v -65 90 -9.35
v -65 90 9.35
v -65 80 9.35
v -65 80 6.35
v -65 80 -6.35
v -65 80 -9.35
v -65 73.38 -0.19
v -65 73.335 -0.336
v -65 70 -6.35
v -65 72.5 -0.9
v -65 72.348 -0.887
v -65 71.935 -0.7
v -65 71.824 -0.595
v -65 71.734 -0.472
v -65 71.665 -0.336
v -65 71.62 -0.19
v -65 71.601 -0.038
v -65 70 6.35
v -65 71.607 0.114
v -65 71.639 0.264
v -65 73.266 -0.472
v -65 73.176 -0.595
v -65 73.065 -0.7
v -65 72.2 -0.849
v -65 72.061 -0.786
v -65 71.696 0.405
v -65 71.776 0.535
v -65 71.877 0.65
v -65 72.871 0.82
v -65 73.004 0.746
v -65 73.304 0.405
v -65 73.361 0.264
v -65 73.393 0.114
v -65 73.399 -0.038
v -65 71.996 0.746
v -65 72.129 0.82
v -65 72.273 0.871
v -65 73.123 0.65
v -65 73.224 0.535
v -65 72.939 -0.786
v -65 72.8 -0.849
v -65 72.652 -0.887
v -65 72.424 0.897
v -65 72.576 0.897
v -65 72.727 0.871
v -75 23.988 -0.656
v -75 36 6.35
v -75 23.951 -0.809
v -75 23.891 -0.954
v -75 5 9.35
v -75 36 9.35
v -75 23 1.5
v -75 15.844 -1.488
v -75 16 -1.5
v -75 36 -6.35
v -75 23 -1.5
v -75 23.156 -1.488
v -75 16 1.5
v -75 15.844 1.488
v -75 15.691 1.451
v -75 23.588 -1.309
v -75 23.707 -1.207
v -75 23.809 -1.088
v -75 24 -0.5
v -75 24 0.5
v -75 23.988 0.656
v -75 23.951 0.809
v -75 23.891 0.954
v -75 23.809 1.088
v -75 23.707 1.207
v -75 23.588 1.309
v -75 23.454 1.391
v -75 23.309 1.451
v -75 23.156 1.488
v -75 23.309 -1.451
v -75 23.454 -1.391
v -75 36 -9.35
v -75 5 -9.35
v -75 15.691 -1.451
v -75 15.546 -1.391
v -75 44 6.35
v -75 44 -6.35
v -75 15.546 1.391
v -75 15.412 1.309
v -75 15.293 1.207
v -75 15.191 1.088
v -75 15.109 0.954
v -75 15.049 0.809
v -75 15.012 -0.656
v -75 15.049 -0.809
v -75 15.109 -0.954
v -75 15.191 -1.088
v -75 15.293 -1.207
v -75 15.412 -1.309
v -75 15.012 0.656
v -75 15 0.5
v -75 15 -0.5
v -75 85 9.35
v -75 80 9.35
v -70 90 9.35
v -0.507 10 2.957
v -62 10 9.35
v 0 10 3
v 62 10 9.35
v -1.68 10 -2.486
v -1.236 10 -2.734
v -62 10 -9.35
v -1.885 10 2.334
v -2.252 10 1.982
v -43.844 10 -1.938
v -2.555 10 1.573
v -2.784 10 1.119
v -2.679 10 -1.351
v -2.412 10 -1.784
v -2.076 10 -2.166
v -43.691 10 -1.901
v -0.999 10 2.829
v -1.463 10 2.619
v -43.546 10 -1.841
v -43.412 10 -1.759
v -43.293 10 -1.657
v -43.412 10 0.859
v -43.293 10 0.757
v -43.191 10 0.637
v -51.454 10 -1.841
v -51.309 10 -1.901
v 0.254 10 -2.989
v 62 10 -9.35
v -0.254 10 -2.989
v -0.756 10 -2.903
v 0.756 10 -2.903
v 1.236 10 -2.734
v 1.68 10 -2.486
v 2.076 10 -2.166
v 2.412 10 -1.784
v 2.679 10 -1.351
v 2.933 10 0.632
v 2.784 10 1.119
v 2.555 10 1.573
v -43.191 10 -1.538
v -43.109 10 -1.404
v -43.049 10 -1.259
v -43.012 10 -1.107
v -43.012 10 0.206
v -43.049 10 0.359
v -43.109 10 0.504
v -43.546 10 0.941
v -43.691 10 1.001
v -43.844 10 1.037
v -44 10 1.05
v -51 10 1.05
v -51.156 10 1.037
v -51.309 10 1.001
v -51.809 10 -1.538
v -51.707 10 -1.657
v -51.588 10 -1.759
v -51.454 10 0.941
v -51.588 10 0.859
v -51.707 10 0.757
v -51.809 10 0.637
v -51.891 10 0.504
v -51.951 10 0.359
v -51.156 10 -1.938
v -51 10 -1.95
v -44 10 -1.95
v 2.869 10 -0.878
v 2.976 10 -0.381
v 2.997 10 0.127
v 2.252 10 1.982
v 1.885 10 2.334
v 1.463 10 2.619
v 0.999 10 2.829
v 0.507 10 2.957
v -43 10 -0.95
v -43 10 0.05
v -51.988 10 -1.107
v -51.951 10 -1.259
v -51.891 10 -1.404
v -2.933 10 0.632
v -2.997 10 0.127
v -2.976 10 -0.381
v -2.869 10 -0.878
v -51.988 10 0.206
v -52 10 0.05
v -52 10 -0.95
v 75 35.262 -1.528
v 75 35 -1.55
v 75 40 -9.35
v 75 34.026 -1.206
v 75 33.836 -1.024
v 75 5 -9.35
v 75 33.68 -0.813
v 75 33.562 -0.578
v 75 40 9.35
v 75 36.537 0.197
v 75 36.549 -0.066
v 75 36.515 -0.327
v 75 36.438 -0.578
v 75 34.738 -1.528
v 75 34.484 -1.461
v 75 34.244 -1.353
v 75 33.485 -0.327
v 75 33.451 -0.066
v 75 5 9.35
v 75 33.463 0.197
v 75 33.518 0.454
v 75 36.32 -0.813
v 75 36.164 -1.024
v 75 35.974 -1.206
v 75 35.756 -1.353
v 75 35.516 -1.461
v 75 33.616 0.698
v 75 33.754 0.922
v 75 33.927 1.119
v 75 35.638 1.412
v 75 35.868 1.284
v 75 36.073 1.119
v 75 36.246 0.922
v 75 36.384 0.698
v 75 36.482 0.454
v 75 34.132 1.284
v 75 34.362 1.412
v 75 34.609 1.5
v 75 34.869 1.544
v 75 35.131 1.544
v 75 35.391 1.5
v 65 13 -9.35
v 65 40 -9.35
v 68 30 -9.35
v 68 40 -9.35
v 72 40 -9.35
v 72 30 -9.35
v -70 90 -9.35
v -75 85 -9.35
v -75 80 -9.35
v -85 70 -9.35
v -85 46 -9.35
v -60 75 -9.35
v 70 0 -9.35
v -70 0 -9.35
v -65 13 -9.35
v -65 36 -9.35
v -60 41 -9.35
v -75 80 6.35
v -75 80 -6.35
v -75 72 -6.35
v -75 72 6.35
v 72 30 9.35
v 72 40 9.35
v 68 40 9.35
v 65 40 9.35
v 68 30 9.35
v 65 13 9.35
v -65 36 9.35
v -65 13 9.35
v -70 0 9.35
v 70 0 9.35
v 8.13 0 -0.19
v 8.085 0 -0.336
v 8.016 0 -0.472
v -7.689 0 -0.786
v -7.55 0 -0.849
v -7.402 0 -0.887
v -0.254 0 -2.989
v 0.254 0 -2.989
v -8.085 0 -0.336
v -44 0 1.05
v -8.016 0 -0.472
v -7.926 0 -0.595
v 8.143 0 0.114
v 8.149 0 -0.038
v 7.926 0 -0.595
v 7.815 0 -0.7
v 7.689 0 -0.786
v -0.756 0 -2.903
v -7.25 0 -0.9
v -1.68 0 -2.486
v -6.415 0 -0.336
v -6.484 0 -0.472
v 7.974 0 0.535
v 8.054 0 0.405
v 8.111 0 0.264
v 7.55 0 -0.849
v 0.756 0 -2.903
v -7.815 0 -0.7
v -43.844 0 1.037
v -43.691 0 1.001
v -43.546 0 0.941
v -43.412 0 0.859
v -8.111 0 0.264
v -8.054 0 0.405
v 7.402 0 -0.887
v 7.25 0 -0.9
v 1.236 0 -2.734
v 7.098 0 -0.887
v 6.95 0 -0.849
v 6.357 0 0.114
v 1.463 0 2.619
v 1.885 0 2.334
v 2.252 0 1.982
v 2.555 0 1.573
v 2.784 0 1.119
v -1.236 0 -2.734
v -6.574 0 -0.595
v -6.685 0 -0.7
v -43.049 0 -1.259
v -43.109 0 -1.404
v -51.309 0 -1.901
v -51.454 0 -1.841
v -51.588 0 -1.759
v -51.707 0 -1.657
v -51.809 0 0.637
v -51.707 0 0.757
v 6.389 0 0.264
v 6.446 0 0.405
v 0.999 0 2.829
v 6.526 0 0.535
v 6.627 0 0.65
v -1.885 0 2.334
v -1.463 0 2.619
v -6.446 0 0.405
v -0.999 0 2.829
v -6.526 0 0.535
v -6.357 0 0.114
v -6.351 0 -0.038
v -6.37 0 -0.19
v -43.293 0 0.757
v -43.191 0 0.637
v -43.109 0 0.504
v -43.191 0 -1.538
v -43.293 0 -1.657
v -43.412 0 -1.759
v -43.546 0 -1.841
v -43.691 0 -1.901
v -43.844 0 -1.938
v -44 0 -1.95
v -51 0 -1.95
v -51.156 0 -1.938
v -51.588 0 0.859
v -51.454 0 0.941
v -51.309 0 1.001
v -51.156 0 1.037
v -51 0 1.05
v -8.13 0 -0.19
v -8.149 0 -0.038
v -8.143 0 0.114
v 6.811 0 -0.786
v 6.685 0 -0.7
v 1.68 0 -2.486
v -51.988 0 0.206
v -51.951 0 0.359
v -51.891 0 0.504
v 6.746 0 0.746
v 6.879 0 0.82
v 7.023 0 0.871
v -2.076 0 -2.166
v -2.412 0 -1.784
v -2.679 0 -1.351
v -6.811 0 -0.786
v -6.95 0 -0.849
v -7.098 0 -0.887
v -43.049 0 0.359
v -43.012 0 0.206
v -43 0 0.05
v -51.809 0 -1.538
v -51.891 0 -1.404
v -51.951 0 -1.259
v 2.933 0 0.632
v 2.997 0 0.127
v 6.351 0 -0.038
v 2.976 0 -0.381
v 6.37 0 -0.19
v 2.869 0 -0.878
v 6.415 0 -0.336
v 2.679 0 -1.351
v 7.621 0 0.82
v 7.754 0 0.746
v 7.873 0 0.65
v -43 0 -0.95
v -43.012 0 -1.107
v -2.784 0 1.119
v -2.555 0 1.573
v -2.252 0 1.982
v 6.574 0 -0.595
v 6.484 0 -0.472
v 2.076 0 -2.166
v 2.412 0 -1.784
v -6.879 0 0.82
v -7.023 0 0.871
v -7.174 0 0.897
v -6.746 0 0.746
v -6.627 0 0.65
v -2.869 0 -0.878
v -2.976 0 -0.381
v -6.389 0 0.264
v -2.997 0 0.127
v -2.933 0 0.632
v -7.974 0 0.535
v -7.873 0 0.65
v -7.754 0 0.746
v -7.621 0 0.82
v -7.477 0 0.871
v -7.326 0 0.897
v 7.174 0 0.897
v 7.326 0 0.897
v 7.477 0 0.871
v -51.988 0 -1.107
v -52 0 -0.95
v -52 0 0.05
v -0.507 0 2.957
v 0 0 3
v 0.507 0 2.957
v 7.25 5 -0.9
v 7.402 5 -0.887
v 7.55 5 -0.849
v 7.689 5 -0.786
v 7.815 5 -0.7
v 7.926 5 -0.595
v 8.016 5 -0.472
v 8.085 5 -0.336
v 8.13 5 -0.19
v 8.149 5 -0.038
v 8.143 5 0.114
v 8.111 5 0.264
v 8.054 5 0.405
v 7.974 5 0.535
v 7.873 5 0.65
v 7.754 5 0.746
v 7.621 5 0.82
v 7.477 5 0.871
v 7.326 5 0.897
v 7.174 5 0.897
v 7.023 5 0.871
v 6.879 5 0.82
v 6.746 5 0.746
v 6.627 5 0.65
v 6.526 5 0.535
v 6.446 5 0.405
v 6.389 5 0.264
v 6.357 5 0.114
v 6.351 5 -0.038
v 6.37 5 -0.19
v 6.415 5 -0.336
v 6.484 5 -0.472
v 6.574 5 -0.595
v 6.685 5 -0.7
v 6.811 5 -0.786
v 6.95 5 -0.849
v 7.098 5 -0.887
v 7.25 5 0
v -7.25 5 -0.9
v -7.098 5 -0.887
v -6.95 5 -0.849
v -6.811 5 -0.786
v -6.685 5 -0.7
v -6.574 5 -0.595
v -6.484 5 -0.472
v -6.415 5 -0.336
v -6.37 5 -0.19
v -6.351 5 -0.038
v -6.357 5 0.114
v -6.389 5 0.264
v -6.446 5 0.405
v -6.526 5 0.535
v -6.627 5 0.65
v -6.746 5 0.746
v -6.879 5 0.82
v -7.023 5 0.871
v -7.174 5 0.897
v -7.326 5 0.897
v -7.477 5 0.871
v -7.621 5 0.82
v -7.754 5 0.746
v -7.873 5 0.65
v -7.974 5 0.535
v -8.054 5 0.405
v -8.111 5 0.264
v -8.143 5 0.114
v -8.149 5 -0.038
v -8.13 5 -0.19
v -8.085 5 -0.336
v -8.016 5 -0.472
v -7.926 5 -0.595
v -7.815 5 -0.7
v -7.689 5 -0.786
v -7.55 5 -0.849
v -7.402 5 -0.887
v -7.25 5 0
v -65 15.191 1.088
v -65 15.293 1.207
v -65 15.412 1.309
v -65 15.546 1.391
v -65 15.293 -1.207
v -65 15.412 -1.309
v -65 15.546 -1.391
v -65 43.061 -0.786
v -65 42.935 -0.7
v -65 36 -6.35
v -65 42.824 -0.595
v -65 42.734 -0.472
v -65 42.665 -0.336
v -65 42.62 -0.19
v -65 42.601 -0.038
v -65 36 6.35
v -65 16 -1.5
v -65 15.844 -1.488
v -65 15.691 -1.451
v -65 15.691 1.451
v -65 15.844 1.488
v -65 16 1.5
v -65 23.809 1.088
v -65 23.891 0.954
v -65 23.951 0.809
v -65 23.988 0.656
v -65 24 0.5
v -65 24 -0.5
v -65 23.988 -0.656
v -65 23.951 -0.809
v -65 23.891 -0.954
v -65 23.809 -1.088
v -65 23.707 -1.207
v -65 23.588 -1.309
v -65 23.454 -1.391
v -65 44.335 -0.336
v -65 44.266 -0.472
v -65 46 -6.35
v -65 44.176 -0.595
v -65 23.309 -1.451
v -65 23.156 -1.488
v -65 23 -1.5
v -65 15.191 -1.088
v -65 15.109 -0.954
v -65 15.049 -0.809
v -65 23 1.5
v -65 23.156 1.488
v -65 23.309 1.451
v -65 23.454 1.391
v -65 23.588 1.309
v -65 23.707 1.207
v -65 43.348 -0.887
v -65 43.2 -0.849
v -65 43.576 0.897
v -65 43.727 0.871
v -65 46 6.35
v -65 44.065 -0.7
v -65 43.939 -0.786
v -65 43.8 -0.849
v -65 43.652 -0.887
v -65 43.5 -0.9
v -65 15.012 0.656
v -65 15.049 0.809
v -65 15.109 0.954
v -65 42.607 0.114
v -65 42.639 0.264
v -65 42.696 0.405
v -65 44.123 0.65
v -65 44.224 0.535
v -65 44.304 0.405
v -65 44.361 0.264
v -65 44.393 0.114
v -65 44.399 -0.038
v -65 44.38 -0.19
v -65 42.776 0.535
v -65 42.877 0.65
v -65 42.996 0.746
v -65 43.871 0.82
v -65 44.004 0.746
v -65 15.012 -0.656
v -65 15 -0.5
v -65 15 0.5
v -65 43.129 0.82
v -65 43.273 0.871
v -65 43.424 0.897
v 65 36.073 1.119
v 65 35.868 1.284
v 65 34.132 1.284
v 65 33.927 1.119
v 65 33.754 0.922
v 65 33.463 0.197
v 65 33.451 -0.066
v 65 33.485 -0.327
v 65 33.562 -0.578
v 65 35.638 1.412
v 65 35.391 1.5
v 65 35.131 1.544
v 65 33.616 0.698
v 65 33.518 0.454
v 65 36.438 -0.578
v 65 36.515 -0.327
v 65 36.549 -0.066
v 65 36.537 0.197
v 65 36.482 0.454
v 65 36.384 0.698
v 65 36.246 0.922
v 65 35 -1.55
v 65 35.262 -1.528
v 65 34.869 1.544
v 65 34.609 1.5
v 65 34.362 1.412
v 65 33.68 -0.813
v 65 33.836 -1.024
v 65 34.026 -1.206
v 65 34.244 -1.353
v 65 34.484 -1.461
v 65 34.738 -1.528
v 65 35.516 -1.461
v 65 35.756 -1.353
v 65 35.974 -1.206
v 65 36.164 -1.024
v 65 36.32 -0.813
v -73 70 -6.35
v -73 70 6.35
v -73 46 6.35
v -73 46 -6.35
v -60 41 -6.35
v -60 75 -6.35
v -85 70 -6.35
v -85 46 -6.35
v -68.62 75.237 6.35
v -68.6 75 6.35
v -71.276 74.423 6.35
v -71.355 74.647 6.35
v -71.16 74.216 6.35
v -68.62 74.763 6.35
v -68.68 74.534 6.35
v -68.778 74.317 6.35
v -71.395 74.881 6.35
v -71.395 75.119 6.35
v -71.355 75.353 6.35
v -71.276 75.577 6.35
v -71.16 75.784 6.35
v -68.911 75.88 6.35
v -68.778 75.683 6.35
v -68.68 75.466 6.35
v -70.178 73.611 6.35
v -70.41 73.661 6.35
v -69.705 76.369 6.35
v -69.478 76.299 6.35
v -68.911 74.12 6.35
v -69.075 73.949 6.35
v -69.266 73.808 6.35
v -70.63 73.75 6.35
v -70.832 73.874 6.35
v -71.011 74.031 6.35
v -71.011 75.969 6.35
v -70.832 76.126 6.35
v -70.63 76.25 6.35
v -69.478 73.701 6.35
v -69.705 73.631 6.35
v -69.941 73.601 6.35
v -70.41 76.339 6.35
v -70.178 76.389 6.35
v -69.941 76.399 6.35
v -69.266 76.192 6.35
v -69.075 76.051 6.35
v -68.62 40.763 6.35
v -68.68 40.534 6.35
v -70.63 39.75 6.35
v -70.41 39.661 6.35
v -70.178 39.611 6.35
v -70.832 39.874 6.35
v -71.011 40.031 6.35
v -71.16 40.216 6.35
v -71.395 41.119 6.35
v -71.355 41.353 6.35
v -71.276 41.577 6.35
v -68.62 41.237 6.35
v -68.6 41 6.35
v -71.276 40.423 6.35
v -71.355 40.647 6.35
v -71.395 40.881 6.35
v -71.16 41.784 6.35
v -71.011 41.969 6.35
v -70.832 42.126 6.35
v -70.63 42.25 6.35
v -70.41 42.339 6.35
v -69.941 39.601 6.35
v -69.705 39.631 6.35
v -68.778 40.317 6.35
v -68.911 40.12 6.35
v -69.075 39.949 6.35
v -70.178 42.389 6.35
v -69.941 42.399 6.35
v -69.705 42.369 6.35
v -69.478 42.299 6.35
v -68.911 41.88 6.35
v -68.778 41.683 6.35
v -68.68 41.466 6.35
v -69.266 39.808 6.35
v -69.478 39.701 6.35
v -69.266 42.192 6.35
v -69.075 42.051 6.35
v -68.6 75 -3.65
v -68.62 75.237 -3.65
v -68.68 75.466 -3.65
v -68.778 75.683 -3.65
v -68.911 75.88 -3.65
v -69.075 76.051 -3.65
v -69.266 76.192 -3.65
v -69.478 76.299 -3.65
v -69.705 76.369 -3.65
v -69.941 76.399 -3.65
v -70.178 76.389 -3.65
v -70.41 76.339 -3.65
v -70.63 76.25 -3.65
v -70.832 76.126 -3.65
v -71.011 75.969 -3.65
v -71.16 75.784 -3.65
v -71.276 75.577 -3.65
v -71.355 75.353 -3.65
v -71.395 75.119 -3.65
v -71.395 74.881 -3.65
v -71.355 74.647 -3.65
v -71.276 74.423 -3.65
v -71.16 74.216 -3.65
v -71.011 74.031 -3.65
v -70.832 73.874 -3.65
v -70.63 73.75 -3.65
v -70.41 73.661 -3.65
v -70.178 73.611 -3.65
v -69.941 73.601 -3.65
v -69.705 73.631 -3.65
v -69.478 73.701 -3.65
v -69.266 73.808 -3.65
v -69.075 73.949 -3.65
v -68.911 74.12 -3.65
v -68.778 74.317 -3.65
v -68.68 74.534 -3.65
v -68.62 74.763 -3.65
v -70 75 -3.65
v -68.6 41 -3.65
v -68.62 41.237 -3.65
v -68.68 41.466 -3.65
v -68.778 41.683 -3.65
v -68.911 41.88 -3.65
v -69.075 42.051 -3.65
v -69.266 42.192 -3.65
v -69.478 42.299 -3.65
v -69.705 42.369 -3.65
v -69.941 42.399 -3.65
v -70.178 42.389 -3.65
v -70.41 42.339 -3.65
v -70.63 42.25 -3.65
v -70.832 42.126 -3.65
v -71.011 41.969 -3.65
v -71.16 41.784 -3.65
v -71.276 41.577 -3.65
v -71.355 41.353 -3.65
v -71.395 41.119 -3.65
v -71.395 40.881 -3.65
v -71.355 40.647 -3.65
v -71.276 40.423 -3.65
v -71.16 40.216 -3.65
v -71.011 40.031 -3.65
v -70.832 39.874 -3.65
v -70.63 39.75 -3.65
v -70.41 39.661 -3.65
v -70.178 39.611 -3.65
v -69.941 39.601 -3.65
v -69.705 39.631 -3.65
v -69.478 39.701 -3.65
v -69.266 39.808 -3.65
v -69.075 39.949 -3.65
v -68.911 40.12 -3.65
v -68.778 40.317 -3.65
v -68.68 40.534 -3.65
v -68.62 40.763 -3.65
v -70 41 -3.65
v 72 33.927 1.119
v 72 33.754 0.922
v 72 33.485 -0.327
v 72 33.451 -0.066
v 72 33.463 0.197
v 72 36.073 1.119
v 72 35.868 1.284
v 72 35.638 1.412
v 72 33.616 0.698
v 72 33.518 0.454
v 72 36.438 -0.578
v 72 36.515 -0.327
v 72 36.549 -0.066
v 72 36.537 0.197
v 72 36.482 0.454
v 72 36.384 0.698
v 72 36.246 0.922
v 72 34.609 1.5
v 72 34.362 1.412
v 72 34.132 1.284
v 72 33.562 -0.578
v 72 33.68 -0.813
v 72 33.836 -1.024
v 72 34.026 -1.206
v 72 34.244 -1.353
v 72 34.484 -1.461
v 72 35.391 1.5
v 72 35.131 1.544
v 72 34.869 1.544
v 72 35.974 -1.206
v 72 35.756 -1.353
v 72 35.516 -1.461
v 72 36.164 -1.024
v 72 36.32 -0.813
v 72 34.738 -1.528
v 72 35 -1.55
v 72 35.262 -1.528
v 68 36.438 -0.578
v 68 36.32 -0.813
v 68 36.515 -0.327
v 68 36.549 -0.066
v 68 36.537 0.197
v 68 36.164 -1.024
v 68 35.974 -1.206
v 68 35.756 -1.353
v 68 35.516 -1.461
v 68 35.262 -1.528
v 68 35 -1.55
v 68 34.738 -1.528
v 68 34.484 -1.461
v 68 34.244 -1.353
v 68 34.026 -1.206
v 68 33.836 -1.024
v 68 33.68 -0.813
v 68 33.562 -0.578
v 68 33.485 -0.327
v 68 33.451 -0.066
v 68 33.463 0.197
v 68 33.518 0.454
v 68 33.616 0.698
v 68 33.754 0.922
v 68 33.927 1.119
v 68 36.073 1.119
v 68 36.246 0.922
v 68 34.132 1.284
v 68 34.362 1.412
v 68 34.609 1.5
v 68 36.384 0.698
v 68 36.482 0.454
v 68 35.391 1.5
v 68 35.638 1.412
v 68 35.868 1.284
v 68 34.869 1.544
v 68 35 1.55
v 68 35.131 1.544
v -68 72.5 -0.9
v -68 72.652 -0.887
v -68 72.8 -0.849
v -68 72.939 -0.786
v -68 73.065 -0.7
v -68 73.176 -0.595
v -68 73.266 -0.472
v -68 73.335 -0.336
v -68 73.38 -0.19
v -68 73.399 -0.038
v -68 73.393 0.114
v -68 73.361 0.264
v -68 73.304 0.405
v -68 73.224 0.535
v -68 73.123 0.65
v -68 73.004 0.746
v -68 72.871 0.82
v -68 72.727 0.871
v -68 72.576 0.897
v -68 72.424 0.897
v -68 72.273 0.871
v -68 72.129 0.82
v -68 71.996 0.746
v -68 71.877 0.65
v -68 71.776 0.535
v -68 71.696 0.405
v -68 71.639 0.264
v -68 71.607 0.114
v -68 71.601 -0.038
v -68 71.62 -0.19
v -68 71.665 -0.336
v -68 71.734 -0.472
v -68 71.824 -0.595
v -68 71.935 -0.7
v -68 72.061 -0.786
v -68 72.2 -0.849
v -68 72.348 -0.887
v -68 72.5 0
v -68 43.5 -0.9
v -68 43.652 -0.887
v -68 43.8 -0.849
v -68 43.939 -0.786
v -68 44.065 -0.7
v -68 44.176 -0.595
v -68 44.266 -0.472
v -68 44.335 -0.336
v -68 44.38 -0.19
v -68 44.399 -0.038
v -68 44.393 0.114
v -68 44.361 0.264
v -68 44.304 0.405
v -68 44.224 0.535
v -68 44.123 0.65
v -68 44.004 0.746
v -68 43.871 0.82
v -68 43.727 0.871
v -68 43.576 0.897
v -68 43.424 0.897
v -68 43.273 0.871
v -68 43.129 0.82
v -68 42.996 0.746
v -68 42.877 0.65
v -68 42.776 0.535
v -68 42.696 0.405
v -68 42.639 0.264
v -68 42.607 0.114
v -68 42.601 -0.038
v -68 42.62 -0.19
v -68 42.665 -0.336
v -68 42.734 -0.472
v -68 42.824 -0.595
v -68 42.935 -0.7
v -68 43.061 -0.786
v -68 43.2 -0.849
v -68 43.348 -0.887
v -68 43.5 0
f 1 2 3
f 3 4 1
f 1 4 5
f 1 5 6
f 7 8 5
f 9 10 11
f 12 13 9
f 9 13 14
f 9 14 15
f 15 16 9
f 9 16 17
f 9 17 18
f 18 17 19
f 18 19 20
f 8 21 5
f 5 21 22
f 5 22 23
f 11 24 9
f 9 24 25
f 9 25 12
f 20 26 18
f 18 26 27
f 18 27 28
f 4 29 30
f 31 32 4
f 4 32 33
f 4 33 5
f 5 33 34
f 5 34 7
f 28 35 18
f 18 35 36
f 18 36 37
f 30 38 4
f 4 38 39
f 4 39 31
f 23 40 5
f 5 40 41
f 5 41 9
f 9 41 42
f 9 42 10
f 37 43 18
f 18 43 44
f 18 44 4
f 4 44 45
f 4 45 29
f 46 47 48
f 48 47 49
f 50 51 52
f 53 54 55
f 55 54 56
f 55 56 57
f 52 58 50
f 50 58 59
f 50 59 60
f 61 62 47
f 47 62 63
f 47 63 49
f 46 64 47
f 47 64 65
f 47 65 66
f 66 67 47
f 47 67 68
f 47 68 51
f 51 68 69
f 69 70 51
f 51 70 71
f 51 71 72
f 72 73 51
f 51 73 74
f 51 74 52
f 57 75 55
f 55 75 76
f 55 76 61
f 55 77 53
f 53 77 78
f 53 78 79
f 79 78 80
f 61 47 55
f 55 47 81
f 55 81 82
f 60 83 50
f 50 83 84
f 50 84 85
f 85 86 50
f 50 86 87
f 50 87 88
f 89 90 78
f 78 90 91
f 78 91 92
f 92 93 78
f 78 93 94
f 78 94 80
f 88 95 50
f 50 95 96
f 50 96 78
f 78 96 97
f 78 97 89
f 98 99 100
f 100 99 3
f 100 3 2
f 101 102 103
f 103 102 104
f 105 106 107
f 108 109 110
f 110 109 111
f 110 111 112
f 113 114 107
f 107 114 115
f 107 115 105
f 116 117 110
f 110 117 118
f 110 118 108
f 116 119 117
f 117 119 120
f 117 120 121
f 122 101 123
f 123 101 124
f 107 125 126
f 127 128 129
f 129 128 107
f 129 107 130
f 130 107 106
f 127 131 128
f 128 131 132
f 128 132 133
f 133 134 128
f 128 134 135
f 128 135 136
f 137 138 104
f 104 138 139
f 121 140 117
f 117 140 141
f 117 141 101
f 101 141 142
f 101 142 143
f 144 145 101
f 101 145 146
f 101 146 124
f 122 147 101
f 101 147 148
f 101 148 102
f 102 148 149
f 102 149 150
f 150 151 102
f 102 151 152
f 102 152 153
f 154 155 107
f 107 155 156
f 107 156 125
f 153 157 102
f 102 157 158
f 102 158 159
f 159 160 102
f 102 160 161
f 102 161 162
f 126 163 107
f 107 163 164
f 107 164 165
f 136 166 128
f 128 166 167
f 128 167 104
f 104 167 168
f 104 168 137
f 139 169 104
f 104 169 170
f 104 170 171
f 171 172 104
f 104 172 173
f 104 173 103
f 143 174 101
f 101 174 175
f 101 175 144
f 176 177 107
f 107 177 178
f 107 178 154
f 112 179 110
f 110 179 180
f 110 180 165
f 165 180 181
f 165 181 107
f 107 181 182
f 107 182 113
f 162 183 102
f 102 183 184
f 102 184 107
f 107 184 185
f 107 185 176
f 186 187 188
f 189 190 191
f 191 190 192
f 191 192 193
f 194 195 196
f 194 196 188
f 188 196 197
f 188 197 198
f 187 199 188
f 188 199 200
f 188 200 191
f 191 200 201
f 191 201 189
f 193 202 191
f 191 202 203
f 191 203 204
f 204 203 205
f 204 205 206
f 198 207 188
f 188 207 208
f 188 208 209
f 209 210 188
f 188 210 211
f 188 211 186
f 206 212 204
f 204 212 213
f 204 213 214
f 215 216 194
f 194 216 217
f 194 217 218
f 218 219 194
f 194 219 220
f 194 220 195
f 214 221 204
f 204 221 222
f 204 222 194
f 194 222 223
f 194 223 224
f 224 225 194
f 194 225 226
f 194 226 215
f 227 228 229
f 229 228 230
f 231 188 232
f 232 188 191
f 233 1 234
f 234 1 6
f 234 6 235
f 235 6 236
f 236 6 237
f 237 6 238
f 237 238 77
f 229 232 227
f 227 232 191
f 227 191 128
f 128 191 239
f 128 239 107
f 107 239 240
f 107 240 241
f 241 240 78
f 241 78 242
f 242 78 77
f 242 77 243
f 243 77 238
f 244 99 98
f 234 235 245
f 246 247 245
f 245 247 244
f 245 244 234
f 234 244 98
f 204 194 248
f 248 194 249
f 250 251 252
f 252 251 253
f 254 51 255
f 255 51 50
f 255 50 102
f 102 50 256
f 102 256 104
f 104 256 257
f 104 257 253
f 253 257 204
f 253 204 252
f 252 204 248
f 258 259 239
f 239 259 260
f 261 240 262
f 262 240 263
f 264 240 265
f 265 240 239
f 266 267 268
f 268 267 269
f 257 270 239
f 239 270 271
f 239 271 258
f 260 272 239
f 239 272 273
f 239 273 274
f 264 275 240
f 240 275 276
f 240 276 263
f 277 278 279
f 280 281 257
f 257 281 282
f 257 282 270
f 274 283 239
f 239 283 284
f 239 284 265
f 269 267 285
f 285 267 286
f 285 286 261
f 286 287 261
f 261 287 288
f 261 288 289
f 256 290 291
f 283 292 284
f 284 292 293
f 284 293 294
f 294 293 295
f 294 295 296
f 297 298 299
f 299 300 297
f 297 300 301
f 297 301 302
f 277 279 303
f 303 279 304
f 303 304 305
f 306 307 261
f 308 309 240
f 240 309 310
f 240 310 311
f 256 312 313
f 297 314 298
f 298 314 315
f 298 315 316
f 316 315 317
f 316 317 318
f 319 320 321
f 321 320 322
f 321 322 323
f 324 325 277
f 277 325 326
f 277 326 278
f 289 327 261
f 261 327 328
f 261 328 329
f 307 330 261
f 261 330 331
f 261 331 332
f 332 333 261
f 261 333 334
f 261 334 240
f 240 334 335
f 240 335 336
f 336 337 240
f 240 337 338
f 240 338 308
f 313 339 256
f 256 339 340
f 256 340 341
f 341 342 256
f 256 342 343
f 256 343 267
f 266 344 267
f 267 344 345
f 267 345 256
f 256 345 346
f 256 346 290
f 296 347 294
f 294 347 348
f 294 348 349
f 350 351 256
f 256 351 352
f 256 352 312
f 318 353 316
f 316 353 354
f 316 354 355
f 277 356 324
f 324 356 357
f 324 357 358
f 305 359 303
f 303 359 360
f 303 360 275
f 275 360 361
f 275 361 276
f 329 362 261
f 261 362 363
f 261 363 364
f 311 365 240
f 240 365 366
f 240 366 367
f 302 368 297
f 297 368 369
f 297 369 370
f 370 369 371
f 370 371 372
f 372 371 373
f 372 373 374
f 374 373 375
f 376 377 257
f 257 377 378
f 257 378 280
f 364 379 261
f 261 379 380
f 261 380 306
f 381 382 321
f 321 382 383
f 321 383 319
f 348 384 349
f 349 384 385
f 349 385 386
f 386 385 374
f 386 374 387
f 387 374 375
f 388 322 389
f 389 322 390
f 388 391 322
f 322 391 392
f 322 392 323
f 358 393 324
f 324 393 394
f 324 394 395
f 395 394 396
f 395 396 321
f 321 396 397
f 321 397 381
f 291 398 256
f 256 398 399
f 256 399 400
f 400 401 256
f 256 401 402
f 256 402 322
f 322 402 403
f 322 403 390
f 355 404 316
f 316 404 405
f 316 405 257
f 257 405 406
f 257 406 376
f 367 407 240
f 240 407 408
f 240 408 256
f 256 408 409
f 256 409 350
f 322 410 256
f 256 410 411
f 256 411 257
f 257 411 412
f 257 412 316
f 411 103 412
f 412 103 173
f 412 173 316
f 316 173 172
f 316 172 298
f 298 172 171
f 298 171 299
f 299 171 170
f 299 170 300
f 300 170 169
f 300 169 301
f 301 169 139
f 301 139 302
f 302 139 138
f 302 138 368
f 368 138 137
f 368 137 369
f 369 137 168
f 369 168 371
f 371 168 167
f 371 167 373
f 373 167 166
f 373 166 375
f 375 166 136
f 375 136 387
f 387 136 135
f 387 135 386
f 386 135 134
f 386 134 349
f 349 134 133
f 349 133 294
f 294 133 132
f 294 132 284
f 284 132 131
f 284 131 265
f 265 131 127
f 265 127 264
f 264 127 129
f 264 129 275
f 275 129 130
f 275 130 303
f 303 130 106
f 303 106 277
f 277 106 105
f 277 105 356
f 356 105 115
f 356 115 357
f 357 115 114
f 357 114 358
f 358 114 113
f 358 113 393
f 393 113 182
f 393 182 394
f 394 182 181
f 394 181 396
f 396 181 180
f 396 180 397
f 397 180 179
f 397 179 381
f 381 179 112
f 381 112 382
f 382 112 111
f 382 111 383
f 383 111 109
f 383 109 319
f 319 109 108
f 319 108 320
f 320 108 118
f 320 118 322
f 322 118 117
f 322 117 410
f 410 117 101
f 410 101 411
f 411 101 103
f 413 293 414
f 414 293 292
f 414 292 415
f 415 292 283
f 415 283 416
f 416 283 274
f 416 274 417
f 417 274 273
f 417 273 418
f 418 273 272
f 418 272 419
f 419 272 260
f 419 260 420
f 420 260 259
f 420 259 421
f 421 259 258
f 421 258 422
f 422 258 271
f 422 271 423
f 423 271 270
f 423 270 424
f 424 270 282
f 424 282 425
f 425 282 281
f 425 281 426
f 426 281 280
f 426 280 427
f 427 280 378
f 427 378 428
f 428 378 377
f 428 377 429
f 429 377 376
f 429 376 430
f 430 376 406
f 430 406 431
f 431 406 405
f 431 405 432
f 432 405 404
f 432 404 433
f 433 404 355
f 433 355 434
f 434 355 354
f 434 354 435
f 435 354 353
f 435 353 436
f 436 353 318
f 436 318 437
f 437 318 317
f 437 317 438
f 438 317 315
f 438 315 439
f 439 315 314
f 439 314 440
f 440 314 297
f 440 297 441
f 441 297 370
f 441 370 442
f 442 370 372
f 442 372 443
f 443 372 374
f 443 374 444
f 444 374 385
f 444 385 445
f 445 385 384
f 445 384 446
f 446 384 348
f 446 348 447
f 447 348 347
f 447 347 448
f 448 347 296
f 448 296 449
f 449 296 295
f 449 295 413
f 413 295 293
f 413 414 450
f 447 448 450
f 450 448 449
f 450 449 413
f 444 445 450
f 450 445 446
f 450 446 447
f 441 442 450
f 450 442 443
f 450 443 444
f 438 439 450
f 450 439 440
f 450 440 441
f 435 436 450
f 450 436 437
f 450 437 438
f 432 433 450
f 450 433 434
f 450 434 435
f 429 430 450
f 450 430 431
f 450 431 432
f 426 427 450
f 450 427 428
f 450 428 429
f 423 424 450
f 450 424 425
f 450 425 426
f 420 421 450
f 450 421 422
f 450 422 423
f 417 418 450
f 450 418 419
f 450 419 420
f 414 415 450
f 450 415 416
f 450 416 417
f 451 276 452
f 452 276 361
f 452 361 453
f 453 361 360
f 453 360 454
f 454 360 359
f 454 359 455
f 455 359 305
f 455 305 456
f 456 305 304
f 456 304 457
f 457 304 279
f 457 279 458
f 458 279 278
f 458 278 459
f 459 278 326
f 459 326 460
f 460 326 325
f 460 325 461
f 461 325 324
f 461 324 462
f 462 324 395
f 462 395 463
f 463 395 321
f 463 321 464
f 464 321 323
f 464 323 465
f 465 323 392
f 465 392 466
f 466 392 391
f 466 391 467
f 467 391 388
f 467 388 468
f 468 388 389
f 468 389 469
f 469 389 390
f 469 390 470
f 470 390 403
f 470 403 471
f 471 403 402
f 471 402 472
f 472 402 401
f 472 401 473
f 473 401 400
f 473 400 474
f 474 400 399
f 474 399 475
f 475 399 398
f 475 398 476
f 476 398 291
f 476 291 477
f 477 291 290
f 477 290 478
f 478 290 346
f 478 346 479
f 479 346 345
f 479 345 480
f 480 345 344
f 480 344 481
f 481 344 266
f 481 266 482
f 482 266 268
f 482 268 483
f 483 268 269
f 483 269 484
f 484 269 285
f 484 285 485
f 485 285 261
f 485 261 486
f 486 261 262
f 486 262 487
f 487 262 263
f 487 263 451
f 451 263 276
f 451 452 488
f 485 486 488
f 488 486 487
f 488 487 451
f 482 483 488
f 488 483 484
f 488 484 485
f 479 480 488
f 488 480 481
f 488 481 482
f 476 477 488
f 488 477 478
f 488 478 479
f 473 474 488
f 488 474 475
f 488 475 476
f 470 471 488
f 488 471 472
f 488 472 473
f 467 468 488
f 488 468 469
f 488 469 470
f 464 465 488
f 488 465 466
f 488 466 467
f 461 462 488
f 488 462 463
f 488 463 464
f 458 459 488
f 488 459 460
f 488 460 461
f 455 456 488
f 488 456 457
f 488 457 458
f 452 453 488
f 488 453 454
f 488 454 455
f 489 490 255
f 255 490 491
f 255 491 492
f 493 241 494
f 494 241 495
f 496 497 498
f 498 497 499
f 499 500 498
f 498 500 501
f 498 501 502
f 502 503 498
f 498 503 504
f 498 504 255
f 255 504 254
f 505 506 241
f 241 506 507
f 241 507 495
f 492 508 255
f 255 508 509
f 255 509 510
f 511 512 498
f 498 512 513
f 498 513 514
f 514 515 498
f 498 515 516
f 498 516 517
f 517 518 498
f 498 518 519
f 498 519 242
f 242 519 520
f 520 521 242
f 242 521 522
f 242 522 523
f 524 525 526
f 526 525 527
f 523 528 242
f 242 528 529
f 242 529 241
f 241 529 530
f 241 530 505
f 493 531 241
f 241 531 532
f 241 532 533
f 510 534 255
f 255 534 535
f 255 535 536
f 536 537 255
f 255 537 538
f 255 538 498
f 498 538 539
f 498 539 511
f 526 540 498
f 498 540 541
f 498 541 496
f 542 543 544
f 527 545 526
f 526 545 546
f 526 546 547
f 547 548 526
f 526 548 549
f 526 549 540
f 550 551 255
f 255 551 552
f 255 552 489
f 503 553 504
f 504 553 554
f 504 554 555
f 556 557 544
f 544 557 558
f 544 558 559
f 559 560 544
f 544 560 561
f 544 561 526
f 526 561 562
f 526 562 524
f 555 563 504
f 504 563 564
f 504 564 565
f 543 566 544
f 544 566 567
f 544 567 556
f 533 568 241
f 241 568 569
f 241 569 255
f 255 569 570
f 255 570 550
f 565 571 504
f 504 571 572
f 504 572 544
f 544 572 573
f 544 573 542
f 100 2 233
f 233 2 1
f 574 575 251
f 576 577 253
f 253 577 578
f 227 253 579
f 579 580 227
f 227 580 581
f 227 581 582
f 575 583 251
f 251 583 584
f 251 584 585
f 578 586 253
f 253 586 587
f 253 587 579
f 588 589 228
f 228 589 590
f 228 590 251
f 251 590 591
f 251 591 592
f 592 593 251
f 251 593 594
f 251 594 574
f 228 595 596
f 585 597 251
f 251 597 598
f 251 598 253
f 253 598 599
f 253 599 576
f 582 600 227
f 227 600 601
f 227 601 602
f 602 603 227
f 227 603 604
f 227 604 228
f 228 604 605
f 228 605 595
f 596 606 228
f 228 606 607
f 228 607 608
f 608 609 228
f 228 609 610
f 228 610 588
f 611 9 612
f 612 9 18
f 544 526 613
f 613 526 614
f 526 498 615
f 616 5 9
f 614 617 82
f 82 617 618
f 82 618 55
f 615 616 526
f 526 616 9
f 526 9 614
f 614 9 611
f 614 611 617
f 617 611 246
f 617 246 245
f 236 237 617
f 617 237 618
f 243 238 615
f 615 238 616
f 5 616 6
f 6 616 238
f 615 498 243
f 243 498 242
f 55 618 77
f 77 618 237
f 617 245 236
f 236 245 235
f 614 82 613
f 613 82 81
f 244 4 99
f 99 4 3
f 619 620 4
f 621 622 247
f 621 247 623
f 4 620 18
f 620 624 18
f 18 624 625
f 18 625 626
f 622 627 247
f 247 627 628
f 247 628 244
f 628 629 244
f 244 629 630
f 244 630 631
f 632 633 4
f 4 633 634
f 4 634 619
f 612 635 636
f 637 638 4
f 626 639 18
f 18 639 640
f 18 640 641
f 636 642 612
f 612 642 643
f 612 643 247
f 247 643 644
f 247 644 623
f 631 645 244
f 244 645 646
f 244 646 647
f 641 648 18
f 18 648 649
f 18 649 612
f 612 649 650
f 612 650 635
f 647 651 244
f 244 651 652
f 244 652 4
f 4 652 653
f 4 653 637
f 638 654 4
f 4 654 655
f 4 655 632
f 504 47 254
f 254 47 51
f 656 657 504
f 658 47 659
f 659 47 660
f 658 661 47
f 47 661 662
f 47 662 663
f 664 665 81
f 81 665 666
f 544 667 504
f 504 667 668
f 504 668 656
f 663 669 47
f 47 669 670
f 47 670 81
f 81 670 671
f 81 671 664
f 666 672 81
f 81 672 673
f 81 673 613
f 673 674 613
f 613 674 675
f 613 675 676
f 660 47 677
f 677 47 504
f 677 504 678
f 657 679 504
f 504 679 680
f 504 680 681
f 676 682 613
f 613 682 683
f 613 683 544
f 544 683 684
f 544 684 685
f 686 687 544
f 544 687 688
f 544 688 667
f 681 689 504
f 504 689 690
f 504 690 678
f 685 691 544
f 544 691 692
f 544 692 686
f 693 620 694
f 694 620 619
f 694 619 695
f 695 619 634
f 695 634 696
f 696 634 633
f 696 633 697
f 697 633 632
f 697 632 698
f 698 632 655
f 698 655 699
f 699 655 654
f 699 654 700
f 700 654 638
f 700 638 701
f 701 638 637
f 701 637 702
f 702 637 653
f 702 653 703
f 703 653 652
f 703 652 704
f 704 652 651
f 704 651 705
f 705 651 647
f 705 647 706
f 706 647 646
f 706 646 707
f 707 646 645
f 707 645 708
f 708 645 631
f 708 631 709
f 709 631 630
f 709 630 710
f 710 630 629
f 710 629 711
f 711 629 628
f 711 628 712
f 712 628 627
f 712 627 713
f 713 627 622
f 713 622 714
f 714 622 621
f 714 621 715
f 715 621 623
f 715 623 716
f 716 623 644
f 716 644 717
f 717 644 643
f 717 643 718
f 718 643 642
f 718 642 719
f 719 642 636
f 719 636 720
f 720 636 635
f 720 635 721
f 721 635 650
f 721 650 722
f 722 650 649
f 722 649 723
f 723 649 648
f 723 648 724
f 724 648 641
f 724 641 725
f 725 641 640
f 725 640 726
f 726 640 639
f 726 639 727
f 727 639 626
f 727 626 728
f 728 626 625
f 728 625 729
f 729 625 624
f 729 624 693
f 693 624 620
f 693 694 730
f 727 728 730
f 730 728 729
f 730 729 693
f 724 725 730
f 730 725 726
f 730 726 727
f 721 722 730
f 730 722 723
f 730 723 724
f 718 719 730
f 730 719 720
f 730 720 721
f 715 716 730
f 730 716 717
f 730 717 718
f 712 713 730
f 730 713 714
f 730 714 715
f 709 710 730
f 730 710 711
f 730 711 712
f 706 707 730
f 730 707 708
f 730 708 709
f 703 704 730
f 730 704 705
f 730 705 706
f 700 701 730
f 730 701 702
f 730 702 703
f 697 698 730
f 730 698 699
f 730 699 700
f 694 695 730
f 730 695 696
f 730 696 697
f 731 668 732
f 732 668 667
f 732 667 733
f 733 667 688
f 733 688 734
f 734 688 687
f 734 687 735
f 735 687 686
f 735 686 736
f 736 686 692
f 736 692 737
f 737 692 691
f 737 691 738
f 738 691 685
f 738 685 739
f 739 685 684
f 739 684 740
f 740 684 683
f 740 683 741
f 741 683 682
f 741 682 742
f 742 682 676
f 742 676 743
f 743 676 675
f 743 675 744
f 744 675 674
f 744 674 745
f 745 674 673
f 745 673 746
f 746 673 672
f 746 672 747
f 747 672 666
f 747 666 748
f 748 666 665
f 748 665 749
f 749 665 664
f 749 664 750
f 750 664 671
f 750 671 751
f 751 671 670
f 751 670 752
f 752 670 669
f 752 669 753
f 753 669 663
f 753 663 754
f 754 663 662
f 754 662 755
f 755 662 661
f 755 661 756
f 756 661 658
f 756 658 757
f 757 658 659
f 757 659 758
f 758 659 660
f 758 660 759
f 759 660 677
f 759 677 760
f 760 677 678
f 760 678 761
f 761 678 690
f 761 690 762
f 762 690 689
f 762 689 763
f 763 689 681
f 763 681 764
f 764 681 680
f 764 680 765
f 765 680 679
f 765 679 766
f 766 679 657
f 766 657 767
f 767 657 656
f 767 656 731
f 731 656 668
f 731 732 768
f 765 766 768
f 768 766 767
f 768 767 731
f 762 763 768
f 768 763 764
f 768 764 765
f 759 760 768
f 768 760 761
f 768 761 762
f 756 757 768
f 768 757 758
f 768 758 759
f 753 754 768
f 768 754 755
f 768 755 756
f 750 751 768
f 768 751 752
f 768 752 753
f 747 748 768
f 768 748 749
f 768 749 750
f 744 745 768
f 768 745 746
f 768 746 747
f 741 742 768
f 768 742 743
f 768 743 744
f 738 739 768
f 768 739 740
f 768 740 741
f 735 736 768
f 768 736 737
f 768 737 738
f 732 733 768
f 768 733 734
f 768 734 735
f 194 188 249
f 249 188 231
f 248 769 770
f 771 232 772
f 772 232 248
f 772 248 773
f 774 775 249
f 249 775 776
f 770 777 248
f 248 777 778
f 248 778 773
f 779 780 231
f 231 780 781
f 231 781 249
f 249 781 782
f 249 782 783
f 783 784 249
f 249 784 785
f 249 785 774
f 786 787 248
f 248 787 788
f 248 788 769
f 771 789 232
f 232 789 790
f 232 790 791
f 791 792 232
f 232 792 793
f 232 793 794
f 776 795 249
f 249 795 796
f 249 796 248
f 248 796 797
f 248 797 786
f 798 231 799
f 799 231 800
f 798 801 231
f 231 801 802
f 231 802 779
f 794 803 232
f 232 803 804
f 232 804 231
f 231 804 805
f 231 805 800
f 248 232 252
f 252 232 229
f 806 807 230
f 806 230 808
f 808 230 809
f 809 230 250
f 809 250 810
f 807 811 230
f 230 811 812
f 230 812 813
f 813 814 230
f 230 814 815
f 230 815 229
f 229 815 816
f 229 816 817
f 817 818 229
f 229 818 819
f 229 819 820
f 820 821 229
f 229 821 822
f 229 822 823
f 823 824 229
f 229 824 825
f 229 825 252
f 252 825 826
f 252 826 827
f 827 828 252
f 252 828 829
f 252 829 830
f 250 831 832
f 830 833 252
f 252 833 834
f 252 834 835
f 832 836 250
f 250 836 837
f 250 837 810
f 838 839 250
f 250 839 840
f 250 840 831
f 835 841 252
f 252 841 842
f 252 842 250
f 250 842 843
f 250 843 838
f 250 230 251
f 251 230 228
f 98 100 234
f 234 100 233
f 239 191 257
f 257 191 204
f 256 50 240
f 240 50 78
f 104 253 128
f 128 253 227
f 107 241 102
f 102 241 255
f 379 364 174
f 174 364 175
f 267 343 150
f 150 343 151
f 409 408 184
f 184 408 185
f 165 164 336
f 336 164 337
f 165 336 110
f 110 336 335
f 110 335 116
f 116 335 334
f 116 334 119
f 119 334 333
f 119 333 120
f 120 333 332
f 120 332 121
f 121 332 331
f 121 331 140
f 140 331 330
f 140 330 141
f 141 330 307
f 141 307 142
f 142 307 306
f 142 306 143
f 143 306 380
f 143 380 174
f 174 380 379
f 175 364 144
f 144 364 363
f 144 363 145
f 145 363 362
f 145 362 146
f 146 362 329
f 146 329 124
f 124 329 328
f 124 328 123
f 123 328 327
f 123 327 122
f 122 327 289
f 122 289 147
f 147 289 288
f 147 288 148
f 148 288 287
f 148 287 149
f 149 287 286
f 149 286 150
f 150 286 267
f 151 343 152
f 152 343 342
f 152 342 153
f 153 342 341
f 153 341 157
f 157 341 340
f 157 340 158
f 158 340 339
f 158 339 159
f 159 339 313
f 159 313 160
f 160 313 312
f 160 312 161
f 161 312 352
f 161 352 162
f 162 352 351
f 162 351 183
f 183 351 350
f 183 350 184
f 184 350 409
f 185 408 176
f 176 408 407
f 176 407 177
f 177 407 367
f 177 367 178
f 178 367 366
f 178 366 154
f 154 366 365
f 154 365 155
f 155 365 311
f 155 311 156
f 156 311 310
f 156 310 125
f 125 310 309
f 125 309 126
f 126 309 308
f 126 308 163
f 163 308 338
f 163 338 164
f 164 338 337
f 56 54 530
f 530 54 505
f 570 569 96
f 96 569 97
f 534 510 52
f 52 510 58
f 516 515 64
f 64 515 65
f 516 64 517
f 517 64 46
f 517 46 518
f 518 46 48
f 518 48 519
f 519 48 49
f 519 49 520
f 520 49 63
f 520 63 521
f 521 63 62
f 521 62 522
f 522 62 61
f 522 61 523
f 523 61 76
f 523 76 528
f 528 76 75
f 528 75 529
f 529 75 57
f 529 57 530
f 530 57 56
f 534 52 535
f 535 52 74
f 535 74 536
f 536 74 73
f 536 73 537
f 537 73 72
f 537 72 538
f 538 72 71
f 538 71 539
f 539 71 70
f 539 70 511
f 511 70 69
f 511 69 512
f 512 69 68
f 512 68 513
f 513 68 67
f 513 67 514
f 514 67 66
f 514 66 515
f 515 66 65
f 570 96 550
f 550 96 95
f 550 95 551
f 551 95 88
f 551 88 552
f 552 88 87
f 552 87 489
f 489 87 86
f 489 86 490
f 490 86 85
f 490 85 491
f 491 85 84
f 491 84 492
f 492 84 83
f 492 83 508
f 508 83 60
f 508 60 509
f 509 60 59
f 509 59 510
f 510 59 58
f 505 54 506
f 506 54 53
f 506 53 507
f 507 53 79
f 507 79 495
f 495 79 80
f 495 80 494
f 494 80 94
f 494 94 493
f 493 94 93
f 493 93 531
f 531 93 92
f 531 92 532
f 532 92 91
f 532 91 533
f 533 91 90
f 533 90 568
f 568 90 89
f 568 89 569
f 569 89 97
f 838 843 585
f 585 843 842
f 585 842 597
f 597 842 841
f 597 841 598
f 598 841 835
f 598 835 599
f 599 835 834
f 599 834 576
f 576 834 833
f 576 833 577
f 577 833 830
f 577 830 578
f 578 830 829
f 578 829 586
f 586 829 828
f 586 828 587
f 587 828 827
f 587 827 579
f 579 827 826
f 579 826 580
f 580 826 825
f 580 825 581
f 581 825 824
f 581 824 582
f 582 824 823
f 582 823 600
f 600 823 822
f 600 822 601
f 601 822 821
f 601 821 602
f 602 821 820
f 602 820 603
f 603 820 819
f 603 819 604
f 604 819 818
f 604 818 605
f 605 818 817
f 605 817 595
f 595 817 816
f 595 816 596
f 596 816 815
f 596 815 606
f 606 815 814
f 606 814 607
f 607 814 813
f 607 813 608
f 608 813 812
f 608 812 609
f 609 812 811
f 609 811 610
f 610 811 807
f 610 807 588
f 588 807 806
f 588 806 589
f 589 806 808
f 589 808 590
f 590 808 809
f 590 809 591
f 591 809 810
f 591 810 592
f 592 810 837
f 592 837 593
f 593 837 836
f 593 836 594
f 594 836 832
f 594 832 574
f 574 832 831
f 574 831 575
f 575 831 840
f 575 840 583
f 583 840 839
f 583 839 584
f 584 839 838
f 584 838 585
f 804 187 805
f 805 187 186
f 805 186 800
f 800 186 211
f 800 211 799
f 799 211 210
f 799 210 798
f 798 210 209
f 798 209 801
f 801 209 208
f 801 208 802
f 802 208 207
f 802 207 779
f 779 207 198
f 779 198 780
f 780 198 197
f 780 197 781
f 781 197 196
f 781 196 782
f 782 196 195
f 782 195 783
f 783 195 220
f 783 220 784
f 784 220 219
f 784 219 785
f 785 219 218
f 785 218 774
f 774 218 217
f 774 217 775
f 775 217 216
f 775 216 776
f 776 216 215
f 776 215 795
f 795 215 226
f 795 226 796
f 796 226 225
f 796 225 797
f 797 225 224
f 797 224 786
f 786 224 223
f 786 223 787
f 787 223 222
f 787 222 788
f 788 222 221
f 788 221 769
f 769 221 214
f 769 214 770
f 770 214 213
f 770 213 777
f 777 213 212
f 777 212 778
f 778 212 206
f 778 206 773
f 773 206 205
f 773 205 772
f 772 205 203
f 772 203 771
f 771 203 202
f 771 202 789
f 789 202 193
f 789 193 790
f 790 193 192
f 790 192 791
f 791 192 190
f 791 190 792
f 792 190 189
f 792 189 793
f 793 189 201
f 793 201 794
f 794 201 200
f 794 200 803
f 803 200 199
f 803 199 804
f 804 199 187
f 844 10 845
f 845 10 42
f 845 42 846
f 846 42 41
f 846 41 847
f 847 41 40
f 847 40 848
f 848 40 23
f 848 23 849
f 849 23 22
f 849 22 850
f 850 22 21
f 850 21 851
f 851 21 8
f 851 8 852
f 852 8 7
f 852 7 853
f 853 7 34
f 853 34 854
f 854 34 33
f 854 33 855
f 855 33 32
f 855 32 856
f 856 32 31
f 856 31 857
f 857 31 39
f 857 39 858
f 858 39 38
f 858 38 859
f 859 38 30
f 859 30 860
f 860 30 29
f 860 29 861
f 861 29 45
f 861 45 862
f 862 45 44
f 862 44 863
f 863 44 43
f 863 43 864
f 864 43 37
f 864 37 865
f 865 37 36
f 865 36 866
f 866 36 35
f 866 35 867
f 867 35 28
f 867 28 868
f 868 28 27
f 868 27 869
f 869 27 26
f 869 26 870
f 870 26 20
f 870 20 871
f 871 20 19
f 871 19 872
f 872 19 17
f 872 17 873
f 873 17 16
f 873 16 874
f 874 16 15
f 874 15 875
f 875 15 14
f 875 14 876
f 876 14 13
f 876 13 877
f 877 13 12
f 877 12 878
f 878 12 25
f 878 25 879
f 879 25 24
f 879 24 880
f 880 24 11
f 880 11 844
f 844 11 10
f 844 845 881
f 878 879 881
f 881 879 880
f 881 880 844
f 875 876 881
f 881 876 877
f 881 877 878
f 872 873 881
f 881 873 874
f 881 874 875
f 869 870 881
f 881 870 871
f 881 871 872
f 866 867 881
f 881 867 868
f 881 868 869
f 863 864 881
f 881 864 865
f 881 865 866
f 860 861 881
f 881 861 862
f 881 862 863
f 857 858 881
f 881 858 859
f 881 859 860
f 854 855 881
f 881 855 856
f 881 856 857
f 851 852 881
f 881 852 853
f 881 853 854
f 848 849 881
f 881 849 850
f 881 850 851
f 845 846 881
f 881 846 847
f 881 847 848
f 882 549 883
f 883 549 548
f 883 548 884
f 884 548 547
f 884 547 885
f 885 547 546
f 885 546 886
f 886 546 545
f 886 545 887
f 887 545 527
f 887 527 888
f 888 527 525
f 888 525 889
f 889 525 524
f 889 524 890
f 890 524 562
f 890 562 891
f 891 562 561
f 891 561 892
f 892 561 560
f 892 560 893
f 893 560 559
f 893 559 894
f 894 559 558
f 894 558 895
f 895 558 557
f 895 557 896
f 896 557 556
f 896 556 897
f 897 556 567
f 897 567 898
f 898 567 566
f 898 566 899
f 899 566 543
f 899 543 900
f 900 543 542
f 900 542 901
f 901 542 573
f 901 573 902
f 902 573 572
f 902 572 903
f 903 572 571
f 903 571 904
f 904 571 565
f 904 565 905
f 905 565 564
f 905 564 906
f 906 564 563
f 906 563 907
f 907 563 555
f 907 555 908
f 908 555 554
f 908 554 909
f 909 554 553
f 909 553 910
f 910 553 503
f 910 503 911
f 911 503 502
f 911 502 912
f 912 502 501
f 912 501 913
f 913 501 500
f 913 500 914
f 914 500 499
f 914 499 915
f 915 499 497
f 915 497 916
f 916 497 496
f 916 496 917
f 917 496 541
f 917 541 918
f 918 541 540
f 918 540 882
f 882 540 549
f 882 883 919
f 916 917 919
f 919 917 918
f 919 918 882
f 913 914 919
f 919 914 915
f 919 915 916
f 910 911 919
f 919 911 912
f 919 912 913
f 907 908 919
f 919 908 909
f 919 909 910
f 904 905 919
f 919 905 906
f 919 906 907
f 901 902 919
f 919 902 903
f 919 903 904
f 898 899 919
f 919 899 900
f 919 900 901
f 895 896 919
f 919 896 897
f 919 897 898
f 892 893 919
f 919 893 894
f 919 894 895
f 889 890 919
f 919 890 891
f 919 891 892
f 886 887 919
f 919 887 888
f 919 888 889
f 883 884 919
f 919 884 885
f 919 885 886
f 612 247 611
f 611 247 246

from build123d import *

# Parameters (mm, degrees)
SKETCH1_W           = 150
SKETCH1_H           = 18.7
BOSS_EXTRUDE1_DEPTH = 10
SKETCH2_R           = 3
CUT_EXTRUDE1_DEPTH  = 10
SKETCH3_R           = 0.9
CUT_EXTRUDE2_DEPTH  = 5
SKETCH4_W           = 10
SKETCH4_H           = 18.7
BOSS_EXTRUDE2_DEPTH = 80
SKETCH5_W           = 10
SKETCH5_H           = 24
CUT_EXTRUDE3_DEPTH  = 15.7
SKETCH6_W           = 10
SKETCH6_H           = 24
SKETCH6_W_2         = 5
BOSS_EXTRUDE3_DEPTH = 3
CHAMFER1_SIZE       = 10
CHAMFER2_SIZE       = 2
SKETCH7_W           = 10
SKETCH7_H           = 10
CUT_EXTRUDE4_DEPTH  = 3
SKETCH9_R           = 1.4
CUT_EXTRUDE5_DEPTH  = 10
CUT_EXTRUDE6_DEPTH  = 20
CHAMFER3_SIZE       = 5
CHAMFER4_SIZE       = 5
CHAMFER5_SIZE       = 3
SKETCH11_W          = 9
SKETCH11_H          = 3
CUT_EXTRUDE7_DEPTH  = 20
FILLET1_R           = 1
SKETCH12_W          = 3
SKETCH12_H          = 9
CUT_EXTRUDE8_DEPTH  = 20
FILLET2_R           = 1
SKETCH13_R          = 1.55
CUT_EXTRUDE9_DEPTH  = 20
SKETCH14_R          = 0.9
CUT_EXTRUDE10_DEPTH = 3
CHAMFER6_SIZE       = 2


with BuildPart() as part:
    # Sketch1 → Boss-Extrude1 (new body)
    with BuildSketch(Plane(origin=(0, 0, 0), x_dir=(1, 0, 0), z_dir=(0, 1, 0))):
        Rectangle(SKETCH1_W, SKETCH1_H)
    extrude(amount=BOSS_EXTRUDE1_DEPTH)

    # Sketch2 → Cut-Extrude1 (cut)
    with BuildSketch(Plane(origin=(0, 10, 0), x_dir=(1, 0, 0), z_dir=(0, 1, 0))):
        with Locations(Location((0, 0, 0), (0, 0, 270))):
            Circle(SKETCH2_R)
    extrude(amount=-CUT_EXTRUDE1_DEPTH, mode=Mode.SUBTRACT)

    # Sketch3 → Cut-Extrude2 (cut)
    with BuildSketch(Plane.XZ):
        with Locations(Location((7.25, 0, 0), (0, 0, 270))):
            Circle(SKETCH3_R)
        with Locations(Location((-7.25, 0, 0), (0, 0, 270))):
            Circle(SKETCH3_R)
    extrude(amount=-CUT_EXTRUDE2_DEPTH, mode=Mode.SUBTRACT)

    # Sketch4 → Boss-Extrude2 (add)
    with BuildSketch(Plane(origin=(0, 10, 0), x_dir=(1, 0, 0), z_dir=(0, 1, 0))):
        with Locations((-70, 0)):
            Rectangle(SKETCH4_W, SKETCH4_H)
        with Locations((70, 0)):
            Rectangle(SKETCH4_W, SKETCH4_H)
    extrude(amount=BOSS_EXTRUDE2_DEPTH)

    # Sketch5 → Cut-Extrude3 (cut)
    with BuildSketch(Plane.XY.offset(9.35)):
        with Locations((-70, 58)):
            Rectangle(SKETCH5_W, SKETCH5_H)
    extrude(amount=-CUT_EXTRUDE3_DEPTH, mode=Mode.SUBTRACT)

    # Sketch6 → Boss-Extrude3 (add)
    with BuildSketch(Plane.XY.offset(-6.35)):
        with Locations((-80, 58)):
            Rectangle(SKETCH6_W, SKETCH6_H)
        with Locations((-62.5, 58)):
            Rectangle(SKETCH6_W_2, SKETCH6_H)
    extrude(amount=-BOSS_EXTRUDE3_DEPTH)

    # Chamfer1
    # the kernel refuses this chamfer: 10 mm, written as the material it adds along each edge
    with BuildSketch(Plane(origin=(-75, 70, -6.35), x_dir=(0.027495876610586317, 0.9996219169112968, 0), z_dir=(0, 0, -1))) as chamfer1_piece_1:
        Polygon((CHAMFER1_SIZE * 0.999621916911, -CHAMFER1_SIZE * 0.0274958766106), (-CHAMFER1_SIZE * 0.0274958766106, -CHAMFER1_SIZE * 0.999621916911), (0, 0), align=None)
    extrude(amount=3)
    with BuildSketch(Plane(origin=(-75, 46, -6.35), x_dir=(0.027495876610586317, -0.9996219169112968, 0), z_dir=(0, 0, -1))) as chamfer1_piece_2:
        Polygon((CHAMFER1_SIZE * 0.999621916911, CHAMFER1_SIZE * 0.0274958766106), (-CHAMFER1_SIZE * 0.0274958766106, CHAMFER1_SIZE * 0.999621916911), (0, 0), align=None)
    extrude(amount=3)
    with BuildSketch(Plane(origin=(-65, 46, -6.35), x_dir=(-0.027495876610586317, -0.9996219169112968, 0), z_dir=(0, 0, -1))) as chamfer1_piece_3_section:
        Polygon((CHAMFER1_SIZE * 0.999621916911, -CHAMFER1_SIZE * 0.0274958766106), (-CHAMFER1_SIZE * 0.0274958766106, -CHAMFER1_SIZE * 0.999621916911), (0, 0), align=None)
    chamfer1_piece_3 = extrude(amount=3, mode=Mode.PRIVATE)
    chamfer1_piece_3 = split(chamfer1_piece_3, bisect_by=Plane(origin=(-60, 42.111111111, -7.85), z_dir=(-1, 0, 0)), keep=Keep.TOP, mode=Mode.PRIVATE)
    add(chamfer1_piece_3)
    with BuildSketch(Plane(origin=(-65, 70, -6.35), x_dir=(-0.027495876610586317, 0.9996219169112968, 0), z_dir=(0, 0, -1))) as chamfer1_piece_4_section:
        Polygon((CHAMFER1_SIZE * 0.999621916911, CHAMFER1_SIZE * 0.0274958766106), (-CHAMFER1_SIZE * 0.0274958766106, CHAMFER1_SIZE * 0.999621916911), (0, 0), align=None)
    chamfer1_piece_4 = extrude(amount=3, mode=Mode.PRIVATE)
    chamfer1_piece_4 = split(chamfer1_piece_4, bisect_by=Plane(origin=(-60, 73.888888889, -7.85), z_dir=(-1, 0, 0)), keep=Keep.TOP, mode=Mode.PRIVATE)
    add(chamfer1_piece_4)

    # Chamfer2
    chamfer2_edges = [part.edges().sort_by_distance(p)[0] for p in [
        (-75, 46, 1.5),
    ]]
    chamfer(chamfer2_edges, length=CHAMFER2_SIZE)

    # Sketch7 → Cut-Extrude4 (cut)
    with BuildSketch(Plane.XY.offset(9.35)):
        with Locations((-70, 75)):
            Rectangle(SKETCH7_W, SKETCH7_H)
        with Locations((-70, 41)):
            Rectangle(SKETCH7_W, SKETCH7_H)
    extrude(amount=-CUT_EXTRUDE4_DEPTH, mode=Mode.SUBTRACT)

    # Sketch9 → Cut-Extrude5 (cut)
    with BuildSketch(Plane.XY.offset(6.35)):
        with Locations((-70, 75)):
            Circle(SKETCH9_R)
        with Locations((-70, 41)):
            Circle(SKETCH9_R)
    extrude(amount=-CUT_EXTRUDE5_DEPTH, mode=Mode.SUBTRACT)

    # Sketch10 → Cut-Extrude6 (cut)
    with BuildSketch(Plane.XY.offset(9.35)):
        Polygon((65, 90), (75, 90), (75, 40), (72, 40), (72, 30), (68, 30), (68, 40), (65, 40), align=None)
    extrude(amount=-CUT_EXTRUDE6_DEPTH, mode=Mode.SUBTRACT)

    # Chamfer3
    chamfer3_edges = [part.edges().sort_by_distance(p)[0] for p in [
        (-75, 90, 0),
    ]]
    chamfer(chamfer3_edges, length=CHAMFER3_SIZE)

    # Chamfer4
    chamfer4_edges = [part.edges().sort_by_distance(p)[0] for p in [
        (-75, 0, 0),
        (75, 0, 0),
    ]]
    chamfer(chamfer4_edges, length=CHAMFER4_SIZE)

    # Chamfer5
    chamfer5_edges = [part.edges().sort_by_distance(p)[0] for p in [
        (-65, 10, 0),
        (65, 10, 0),
    ]]
    chamfer(chamfer5_edges, length=CHAMFER5_SIZE)

    # Sketch11 → Cut-Extrude7 (cut)
    with BuildSketch(Plane(origin=(0, 10, 0), x_dir=(1, 0, 0), z_dir=(0, 1, 0))):
        with Locations((-47.5, 0.450329583)):
            Rectangle(SKETCH11_W, SKETCH11_H)
    extrude(amount=-CUT_EXTRUDE7_DEPTH, mode=Mode.SUBTRACT)

    # Fillet1
    fillet1_edges = [part.edges().sort_by_distance(p)[0] for p in [
        (-43, 5, -1.950329583),
        (-43, 5, 1.049670417),
        (-52, 5, 1.049670417),
        (-52, 5, -1.950329583),
    ]]
    fillet(fillet1_edges, radius=FILLET1_R)

    # Sketch12 → Cut-Extrude8 (cut)
    with BuildSketch(Plane(origin=(-65, 0, 0), x_dir=(0, 0, -1), z_dir=(1, 0, 0))):
        with Locations((0, 19.5)):
            Rectangle(SKETCH12_W, SKETCH12_H)
    extrude(amount=-CUT_EXTRUDE8_DEPTH, mode=Mode.SUBTRACT)

    # Fillet2
    fillet2_edges = [part.edges().sort_by_distance(p)[0] for p in [
        (-70, 24, -1.5),
        (-70, 15, -1.5),
        (-70, 15, 1.5),
        (-70, 24, 1.5),
    ]]
    fillet(fillet2_edges, radius=FILLET2_R)

    # Sketch13 → Cut-Extrude9 (cut)
    with BuildSketch(Plane(origin=(75, 0, 0), x_dir=(0, 0, -1), z_dir=(1, 0, 0))):
        with Locations((0, 35)):
            Circle(SKETCH13_R)
    extrude(amount=-CUT_EXTRUDE9_DEPTH, mode=Mode.SUBTRACT)

    # Sketch14 → Cut-Extrude10 (cut)
    with BuildSketch(Plane(origin=(-65, 0, 0), x_dir=(0, 0, -1), z_dir=(1, 0, 0))):
        with Locations((0, 72.5)):
            Circle(SKETCH14_R)
        with Locations((0, 43.5)):
            Circle(SKETCH14_R)
    extrude(amount=-CUT_EXTRUDE10_DEPTH, mode=Mode.SUBTRACT)

    # Chamfer6
    chamfer6_edges = [part.edges().sort_by_distance(p)[0] for p in [
        (-75, 70, 0),
    ]]
    chamfer(chamfer6_edges, length=CHAMFER6_SIZE)


solid = part.part
